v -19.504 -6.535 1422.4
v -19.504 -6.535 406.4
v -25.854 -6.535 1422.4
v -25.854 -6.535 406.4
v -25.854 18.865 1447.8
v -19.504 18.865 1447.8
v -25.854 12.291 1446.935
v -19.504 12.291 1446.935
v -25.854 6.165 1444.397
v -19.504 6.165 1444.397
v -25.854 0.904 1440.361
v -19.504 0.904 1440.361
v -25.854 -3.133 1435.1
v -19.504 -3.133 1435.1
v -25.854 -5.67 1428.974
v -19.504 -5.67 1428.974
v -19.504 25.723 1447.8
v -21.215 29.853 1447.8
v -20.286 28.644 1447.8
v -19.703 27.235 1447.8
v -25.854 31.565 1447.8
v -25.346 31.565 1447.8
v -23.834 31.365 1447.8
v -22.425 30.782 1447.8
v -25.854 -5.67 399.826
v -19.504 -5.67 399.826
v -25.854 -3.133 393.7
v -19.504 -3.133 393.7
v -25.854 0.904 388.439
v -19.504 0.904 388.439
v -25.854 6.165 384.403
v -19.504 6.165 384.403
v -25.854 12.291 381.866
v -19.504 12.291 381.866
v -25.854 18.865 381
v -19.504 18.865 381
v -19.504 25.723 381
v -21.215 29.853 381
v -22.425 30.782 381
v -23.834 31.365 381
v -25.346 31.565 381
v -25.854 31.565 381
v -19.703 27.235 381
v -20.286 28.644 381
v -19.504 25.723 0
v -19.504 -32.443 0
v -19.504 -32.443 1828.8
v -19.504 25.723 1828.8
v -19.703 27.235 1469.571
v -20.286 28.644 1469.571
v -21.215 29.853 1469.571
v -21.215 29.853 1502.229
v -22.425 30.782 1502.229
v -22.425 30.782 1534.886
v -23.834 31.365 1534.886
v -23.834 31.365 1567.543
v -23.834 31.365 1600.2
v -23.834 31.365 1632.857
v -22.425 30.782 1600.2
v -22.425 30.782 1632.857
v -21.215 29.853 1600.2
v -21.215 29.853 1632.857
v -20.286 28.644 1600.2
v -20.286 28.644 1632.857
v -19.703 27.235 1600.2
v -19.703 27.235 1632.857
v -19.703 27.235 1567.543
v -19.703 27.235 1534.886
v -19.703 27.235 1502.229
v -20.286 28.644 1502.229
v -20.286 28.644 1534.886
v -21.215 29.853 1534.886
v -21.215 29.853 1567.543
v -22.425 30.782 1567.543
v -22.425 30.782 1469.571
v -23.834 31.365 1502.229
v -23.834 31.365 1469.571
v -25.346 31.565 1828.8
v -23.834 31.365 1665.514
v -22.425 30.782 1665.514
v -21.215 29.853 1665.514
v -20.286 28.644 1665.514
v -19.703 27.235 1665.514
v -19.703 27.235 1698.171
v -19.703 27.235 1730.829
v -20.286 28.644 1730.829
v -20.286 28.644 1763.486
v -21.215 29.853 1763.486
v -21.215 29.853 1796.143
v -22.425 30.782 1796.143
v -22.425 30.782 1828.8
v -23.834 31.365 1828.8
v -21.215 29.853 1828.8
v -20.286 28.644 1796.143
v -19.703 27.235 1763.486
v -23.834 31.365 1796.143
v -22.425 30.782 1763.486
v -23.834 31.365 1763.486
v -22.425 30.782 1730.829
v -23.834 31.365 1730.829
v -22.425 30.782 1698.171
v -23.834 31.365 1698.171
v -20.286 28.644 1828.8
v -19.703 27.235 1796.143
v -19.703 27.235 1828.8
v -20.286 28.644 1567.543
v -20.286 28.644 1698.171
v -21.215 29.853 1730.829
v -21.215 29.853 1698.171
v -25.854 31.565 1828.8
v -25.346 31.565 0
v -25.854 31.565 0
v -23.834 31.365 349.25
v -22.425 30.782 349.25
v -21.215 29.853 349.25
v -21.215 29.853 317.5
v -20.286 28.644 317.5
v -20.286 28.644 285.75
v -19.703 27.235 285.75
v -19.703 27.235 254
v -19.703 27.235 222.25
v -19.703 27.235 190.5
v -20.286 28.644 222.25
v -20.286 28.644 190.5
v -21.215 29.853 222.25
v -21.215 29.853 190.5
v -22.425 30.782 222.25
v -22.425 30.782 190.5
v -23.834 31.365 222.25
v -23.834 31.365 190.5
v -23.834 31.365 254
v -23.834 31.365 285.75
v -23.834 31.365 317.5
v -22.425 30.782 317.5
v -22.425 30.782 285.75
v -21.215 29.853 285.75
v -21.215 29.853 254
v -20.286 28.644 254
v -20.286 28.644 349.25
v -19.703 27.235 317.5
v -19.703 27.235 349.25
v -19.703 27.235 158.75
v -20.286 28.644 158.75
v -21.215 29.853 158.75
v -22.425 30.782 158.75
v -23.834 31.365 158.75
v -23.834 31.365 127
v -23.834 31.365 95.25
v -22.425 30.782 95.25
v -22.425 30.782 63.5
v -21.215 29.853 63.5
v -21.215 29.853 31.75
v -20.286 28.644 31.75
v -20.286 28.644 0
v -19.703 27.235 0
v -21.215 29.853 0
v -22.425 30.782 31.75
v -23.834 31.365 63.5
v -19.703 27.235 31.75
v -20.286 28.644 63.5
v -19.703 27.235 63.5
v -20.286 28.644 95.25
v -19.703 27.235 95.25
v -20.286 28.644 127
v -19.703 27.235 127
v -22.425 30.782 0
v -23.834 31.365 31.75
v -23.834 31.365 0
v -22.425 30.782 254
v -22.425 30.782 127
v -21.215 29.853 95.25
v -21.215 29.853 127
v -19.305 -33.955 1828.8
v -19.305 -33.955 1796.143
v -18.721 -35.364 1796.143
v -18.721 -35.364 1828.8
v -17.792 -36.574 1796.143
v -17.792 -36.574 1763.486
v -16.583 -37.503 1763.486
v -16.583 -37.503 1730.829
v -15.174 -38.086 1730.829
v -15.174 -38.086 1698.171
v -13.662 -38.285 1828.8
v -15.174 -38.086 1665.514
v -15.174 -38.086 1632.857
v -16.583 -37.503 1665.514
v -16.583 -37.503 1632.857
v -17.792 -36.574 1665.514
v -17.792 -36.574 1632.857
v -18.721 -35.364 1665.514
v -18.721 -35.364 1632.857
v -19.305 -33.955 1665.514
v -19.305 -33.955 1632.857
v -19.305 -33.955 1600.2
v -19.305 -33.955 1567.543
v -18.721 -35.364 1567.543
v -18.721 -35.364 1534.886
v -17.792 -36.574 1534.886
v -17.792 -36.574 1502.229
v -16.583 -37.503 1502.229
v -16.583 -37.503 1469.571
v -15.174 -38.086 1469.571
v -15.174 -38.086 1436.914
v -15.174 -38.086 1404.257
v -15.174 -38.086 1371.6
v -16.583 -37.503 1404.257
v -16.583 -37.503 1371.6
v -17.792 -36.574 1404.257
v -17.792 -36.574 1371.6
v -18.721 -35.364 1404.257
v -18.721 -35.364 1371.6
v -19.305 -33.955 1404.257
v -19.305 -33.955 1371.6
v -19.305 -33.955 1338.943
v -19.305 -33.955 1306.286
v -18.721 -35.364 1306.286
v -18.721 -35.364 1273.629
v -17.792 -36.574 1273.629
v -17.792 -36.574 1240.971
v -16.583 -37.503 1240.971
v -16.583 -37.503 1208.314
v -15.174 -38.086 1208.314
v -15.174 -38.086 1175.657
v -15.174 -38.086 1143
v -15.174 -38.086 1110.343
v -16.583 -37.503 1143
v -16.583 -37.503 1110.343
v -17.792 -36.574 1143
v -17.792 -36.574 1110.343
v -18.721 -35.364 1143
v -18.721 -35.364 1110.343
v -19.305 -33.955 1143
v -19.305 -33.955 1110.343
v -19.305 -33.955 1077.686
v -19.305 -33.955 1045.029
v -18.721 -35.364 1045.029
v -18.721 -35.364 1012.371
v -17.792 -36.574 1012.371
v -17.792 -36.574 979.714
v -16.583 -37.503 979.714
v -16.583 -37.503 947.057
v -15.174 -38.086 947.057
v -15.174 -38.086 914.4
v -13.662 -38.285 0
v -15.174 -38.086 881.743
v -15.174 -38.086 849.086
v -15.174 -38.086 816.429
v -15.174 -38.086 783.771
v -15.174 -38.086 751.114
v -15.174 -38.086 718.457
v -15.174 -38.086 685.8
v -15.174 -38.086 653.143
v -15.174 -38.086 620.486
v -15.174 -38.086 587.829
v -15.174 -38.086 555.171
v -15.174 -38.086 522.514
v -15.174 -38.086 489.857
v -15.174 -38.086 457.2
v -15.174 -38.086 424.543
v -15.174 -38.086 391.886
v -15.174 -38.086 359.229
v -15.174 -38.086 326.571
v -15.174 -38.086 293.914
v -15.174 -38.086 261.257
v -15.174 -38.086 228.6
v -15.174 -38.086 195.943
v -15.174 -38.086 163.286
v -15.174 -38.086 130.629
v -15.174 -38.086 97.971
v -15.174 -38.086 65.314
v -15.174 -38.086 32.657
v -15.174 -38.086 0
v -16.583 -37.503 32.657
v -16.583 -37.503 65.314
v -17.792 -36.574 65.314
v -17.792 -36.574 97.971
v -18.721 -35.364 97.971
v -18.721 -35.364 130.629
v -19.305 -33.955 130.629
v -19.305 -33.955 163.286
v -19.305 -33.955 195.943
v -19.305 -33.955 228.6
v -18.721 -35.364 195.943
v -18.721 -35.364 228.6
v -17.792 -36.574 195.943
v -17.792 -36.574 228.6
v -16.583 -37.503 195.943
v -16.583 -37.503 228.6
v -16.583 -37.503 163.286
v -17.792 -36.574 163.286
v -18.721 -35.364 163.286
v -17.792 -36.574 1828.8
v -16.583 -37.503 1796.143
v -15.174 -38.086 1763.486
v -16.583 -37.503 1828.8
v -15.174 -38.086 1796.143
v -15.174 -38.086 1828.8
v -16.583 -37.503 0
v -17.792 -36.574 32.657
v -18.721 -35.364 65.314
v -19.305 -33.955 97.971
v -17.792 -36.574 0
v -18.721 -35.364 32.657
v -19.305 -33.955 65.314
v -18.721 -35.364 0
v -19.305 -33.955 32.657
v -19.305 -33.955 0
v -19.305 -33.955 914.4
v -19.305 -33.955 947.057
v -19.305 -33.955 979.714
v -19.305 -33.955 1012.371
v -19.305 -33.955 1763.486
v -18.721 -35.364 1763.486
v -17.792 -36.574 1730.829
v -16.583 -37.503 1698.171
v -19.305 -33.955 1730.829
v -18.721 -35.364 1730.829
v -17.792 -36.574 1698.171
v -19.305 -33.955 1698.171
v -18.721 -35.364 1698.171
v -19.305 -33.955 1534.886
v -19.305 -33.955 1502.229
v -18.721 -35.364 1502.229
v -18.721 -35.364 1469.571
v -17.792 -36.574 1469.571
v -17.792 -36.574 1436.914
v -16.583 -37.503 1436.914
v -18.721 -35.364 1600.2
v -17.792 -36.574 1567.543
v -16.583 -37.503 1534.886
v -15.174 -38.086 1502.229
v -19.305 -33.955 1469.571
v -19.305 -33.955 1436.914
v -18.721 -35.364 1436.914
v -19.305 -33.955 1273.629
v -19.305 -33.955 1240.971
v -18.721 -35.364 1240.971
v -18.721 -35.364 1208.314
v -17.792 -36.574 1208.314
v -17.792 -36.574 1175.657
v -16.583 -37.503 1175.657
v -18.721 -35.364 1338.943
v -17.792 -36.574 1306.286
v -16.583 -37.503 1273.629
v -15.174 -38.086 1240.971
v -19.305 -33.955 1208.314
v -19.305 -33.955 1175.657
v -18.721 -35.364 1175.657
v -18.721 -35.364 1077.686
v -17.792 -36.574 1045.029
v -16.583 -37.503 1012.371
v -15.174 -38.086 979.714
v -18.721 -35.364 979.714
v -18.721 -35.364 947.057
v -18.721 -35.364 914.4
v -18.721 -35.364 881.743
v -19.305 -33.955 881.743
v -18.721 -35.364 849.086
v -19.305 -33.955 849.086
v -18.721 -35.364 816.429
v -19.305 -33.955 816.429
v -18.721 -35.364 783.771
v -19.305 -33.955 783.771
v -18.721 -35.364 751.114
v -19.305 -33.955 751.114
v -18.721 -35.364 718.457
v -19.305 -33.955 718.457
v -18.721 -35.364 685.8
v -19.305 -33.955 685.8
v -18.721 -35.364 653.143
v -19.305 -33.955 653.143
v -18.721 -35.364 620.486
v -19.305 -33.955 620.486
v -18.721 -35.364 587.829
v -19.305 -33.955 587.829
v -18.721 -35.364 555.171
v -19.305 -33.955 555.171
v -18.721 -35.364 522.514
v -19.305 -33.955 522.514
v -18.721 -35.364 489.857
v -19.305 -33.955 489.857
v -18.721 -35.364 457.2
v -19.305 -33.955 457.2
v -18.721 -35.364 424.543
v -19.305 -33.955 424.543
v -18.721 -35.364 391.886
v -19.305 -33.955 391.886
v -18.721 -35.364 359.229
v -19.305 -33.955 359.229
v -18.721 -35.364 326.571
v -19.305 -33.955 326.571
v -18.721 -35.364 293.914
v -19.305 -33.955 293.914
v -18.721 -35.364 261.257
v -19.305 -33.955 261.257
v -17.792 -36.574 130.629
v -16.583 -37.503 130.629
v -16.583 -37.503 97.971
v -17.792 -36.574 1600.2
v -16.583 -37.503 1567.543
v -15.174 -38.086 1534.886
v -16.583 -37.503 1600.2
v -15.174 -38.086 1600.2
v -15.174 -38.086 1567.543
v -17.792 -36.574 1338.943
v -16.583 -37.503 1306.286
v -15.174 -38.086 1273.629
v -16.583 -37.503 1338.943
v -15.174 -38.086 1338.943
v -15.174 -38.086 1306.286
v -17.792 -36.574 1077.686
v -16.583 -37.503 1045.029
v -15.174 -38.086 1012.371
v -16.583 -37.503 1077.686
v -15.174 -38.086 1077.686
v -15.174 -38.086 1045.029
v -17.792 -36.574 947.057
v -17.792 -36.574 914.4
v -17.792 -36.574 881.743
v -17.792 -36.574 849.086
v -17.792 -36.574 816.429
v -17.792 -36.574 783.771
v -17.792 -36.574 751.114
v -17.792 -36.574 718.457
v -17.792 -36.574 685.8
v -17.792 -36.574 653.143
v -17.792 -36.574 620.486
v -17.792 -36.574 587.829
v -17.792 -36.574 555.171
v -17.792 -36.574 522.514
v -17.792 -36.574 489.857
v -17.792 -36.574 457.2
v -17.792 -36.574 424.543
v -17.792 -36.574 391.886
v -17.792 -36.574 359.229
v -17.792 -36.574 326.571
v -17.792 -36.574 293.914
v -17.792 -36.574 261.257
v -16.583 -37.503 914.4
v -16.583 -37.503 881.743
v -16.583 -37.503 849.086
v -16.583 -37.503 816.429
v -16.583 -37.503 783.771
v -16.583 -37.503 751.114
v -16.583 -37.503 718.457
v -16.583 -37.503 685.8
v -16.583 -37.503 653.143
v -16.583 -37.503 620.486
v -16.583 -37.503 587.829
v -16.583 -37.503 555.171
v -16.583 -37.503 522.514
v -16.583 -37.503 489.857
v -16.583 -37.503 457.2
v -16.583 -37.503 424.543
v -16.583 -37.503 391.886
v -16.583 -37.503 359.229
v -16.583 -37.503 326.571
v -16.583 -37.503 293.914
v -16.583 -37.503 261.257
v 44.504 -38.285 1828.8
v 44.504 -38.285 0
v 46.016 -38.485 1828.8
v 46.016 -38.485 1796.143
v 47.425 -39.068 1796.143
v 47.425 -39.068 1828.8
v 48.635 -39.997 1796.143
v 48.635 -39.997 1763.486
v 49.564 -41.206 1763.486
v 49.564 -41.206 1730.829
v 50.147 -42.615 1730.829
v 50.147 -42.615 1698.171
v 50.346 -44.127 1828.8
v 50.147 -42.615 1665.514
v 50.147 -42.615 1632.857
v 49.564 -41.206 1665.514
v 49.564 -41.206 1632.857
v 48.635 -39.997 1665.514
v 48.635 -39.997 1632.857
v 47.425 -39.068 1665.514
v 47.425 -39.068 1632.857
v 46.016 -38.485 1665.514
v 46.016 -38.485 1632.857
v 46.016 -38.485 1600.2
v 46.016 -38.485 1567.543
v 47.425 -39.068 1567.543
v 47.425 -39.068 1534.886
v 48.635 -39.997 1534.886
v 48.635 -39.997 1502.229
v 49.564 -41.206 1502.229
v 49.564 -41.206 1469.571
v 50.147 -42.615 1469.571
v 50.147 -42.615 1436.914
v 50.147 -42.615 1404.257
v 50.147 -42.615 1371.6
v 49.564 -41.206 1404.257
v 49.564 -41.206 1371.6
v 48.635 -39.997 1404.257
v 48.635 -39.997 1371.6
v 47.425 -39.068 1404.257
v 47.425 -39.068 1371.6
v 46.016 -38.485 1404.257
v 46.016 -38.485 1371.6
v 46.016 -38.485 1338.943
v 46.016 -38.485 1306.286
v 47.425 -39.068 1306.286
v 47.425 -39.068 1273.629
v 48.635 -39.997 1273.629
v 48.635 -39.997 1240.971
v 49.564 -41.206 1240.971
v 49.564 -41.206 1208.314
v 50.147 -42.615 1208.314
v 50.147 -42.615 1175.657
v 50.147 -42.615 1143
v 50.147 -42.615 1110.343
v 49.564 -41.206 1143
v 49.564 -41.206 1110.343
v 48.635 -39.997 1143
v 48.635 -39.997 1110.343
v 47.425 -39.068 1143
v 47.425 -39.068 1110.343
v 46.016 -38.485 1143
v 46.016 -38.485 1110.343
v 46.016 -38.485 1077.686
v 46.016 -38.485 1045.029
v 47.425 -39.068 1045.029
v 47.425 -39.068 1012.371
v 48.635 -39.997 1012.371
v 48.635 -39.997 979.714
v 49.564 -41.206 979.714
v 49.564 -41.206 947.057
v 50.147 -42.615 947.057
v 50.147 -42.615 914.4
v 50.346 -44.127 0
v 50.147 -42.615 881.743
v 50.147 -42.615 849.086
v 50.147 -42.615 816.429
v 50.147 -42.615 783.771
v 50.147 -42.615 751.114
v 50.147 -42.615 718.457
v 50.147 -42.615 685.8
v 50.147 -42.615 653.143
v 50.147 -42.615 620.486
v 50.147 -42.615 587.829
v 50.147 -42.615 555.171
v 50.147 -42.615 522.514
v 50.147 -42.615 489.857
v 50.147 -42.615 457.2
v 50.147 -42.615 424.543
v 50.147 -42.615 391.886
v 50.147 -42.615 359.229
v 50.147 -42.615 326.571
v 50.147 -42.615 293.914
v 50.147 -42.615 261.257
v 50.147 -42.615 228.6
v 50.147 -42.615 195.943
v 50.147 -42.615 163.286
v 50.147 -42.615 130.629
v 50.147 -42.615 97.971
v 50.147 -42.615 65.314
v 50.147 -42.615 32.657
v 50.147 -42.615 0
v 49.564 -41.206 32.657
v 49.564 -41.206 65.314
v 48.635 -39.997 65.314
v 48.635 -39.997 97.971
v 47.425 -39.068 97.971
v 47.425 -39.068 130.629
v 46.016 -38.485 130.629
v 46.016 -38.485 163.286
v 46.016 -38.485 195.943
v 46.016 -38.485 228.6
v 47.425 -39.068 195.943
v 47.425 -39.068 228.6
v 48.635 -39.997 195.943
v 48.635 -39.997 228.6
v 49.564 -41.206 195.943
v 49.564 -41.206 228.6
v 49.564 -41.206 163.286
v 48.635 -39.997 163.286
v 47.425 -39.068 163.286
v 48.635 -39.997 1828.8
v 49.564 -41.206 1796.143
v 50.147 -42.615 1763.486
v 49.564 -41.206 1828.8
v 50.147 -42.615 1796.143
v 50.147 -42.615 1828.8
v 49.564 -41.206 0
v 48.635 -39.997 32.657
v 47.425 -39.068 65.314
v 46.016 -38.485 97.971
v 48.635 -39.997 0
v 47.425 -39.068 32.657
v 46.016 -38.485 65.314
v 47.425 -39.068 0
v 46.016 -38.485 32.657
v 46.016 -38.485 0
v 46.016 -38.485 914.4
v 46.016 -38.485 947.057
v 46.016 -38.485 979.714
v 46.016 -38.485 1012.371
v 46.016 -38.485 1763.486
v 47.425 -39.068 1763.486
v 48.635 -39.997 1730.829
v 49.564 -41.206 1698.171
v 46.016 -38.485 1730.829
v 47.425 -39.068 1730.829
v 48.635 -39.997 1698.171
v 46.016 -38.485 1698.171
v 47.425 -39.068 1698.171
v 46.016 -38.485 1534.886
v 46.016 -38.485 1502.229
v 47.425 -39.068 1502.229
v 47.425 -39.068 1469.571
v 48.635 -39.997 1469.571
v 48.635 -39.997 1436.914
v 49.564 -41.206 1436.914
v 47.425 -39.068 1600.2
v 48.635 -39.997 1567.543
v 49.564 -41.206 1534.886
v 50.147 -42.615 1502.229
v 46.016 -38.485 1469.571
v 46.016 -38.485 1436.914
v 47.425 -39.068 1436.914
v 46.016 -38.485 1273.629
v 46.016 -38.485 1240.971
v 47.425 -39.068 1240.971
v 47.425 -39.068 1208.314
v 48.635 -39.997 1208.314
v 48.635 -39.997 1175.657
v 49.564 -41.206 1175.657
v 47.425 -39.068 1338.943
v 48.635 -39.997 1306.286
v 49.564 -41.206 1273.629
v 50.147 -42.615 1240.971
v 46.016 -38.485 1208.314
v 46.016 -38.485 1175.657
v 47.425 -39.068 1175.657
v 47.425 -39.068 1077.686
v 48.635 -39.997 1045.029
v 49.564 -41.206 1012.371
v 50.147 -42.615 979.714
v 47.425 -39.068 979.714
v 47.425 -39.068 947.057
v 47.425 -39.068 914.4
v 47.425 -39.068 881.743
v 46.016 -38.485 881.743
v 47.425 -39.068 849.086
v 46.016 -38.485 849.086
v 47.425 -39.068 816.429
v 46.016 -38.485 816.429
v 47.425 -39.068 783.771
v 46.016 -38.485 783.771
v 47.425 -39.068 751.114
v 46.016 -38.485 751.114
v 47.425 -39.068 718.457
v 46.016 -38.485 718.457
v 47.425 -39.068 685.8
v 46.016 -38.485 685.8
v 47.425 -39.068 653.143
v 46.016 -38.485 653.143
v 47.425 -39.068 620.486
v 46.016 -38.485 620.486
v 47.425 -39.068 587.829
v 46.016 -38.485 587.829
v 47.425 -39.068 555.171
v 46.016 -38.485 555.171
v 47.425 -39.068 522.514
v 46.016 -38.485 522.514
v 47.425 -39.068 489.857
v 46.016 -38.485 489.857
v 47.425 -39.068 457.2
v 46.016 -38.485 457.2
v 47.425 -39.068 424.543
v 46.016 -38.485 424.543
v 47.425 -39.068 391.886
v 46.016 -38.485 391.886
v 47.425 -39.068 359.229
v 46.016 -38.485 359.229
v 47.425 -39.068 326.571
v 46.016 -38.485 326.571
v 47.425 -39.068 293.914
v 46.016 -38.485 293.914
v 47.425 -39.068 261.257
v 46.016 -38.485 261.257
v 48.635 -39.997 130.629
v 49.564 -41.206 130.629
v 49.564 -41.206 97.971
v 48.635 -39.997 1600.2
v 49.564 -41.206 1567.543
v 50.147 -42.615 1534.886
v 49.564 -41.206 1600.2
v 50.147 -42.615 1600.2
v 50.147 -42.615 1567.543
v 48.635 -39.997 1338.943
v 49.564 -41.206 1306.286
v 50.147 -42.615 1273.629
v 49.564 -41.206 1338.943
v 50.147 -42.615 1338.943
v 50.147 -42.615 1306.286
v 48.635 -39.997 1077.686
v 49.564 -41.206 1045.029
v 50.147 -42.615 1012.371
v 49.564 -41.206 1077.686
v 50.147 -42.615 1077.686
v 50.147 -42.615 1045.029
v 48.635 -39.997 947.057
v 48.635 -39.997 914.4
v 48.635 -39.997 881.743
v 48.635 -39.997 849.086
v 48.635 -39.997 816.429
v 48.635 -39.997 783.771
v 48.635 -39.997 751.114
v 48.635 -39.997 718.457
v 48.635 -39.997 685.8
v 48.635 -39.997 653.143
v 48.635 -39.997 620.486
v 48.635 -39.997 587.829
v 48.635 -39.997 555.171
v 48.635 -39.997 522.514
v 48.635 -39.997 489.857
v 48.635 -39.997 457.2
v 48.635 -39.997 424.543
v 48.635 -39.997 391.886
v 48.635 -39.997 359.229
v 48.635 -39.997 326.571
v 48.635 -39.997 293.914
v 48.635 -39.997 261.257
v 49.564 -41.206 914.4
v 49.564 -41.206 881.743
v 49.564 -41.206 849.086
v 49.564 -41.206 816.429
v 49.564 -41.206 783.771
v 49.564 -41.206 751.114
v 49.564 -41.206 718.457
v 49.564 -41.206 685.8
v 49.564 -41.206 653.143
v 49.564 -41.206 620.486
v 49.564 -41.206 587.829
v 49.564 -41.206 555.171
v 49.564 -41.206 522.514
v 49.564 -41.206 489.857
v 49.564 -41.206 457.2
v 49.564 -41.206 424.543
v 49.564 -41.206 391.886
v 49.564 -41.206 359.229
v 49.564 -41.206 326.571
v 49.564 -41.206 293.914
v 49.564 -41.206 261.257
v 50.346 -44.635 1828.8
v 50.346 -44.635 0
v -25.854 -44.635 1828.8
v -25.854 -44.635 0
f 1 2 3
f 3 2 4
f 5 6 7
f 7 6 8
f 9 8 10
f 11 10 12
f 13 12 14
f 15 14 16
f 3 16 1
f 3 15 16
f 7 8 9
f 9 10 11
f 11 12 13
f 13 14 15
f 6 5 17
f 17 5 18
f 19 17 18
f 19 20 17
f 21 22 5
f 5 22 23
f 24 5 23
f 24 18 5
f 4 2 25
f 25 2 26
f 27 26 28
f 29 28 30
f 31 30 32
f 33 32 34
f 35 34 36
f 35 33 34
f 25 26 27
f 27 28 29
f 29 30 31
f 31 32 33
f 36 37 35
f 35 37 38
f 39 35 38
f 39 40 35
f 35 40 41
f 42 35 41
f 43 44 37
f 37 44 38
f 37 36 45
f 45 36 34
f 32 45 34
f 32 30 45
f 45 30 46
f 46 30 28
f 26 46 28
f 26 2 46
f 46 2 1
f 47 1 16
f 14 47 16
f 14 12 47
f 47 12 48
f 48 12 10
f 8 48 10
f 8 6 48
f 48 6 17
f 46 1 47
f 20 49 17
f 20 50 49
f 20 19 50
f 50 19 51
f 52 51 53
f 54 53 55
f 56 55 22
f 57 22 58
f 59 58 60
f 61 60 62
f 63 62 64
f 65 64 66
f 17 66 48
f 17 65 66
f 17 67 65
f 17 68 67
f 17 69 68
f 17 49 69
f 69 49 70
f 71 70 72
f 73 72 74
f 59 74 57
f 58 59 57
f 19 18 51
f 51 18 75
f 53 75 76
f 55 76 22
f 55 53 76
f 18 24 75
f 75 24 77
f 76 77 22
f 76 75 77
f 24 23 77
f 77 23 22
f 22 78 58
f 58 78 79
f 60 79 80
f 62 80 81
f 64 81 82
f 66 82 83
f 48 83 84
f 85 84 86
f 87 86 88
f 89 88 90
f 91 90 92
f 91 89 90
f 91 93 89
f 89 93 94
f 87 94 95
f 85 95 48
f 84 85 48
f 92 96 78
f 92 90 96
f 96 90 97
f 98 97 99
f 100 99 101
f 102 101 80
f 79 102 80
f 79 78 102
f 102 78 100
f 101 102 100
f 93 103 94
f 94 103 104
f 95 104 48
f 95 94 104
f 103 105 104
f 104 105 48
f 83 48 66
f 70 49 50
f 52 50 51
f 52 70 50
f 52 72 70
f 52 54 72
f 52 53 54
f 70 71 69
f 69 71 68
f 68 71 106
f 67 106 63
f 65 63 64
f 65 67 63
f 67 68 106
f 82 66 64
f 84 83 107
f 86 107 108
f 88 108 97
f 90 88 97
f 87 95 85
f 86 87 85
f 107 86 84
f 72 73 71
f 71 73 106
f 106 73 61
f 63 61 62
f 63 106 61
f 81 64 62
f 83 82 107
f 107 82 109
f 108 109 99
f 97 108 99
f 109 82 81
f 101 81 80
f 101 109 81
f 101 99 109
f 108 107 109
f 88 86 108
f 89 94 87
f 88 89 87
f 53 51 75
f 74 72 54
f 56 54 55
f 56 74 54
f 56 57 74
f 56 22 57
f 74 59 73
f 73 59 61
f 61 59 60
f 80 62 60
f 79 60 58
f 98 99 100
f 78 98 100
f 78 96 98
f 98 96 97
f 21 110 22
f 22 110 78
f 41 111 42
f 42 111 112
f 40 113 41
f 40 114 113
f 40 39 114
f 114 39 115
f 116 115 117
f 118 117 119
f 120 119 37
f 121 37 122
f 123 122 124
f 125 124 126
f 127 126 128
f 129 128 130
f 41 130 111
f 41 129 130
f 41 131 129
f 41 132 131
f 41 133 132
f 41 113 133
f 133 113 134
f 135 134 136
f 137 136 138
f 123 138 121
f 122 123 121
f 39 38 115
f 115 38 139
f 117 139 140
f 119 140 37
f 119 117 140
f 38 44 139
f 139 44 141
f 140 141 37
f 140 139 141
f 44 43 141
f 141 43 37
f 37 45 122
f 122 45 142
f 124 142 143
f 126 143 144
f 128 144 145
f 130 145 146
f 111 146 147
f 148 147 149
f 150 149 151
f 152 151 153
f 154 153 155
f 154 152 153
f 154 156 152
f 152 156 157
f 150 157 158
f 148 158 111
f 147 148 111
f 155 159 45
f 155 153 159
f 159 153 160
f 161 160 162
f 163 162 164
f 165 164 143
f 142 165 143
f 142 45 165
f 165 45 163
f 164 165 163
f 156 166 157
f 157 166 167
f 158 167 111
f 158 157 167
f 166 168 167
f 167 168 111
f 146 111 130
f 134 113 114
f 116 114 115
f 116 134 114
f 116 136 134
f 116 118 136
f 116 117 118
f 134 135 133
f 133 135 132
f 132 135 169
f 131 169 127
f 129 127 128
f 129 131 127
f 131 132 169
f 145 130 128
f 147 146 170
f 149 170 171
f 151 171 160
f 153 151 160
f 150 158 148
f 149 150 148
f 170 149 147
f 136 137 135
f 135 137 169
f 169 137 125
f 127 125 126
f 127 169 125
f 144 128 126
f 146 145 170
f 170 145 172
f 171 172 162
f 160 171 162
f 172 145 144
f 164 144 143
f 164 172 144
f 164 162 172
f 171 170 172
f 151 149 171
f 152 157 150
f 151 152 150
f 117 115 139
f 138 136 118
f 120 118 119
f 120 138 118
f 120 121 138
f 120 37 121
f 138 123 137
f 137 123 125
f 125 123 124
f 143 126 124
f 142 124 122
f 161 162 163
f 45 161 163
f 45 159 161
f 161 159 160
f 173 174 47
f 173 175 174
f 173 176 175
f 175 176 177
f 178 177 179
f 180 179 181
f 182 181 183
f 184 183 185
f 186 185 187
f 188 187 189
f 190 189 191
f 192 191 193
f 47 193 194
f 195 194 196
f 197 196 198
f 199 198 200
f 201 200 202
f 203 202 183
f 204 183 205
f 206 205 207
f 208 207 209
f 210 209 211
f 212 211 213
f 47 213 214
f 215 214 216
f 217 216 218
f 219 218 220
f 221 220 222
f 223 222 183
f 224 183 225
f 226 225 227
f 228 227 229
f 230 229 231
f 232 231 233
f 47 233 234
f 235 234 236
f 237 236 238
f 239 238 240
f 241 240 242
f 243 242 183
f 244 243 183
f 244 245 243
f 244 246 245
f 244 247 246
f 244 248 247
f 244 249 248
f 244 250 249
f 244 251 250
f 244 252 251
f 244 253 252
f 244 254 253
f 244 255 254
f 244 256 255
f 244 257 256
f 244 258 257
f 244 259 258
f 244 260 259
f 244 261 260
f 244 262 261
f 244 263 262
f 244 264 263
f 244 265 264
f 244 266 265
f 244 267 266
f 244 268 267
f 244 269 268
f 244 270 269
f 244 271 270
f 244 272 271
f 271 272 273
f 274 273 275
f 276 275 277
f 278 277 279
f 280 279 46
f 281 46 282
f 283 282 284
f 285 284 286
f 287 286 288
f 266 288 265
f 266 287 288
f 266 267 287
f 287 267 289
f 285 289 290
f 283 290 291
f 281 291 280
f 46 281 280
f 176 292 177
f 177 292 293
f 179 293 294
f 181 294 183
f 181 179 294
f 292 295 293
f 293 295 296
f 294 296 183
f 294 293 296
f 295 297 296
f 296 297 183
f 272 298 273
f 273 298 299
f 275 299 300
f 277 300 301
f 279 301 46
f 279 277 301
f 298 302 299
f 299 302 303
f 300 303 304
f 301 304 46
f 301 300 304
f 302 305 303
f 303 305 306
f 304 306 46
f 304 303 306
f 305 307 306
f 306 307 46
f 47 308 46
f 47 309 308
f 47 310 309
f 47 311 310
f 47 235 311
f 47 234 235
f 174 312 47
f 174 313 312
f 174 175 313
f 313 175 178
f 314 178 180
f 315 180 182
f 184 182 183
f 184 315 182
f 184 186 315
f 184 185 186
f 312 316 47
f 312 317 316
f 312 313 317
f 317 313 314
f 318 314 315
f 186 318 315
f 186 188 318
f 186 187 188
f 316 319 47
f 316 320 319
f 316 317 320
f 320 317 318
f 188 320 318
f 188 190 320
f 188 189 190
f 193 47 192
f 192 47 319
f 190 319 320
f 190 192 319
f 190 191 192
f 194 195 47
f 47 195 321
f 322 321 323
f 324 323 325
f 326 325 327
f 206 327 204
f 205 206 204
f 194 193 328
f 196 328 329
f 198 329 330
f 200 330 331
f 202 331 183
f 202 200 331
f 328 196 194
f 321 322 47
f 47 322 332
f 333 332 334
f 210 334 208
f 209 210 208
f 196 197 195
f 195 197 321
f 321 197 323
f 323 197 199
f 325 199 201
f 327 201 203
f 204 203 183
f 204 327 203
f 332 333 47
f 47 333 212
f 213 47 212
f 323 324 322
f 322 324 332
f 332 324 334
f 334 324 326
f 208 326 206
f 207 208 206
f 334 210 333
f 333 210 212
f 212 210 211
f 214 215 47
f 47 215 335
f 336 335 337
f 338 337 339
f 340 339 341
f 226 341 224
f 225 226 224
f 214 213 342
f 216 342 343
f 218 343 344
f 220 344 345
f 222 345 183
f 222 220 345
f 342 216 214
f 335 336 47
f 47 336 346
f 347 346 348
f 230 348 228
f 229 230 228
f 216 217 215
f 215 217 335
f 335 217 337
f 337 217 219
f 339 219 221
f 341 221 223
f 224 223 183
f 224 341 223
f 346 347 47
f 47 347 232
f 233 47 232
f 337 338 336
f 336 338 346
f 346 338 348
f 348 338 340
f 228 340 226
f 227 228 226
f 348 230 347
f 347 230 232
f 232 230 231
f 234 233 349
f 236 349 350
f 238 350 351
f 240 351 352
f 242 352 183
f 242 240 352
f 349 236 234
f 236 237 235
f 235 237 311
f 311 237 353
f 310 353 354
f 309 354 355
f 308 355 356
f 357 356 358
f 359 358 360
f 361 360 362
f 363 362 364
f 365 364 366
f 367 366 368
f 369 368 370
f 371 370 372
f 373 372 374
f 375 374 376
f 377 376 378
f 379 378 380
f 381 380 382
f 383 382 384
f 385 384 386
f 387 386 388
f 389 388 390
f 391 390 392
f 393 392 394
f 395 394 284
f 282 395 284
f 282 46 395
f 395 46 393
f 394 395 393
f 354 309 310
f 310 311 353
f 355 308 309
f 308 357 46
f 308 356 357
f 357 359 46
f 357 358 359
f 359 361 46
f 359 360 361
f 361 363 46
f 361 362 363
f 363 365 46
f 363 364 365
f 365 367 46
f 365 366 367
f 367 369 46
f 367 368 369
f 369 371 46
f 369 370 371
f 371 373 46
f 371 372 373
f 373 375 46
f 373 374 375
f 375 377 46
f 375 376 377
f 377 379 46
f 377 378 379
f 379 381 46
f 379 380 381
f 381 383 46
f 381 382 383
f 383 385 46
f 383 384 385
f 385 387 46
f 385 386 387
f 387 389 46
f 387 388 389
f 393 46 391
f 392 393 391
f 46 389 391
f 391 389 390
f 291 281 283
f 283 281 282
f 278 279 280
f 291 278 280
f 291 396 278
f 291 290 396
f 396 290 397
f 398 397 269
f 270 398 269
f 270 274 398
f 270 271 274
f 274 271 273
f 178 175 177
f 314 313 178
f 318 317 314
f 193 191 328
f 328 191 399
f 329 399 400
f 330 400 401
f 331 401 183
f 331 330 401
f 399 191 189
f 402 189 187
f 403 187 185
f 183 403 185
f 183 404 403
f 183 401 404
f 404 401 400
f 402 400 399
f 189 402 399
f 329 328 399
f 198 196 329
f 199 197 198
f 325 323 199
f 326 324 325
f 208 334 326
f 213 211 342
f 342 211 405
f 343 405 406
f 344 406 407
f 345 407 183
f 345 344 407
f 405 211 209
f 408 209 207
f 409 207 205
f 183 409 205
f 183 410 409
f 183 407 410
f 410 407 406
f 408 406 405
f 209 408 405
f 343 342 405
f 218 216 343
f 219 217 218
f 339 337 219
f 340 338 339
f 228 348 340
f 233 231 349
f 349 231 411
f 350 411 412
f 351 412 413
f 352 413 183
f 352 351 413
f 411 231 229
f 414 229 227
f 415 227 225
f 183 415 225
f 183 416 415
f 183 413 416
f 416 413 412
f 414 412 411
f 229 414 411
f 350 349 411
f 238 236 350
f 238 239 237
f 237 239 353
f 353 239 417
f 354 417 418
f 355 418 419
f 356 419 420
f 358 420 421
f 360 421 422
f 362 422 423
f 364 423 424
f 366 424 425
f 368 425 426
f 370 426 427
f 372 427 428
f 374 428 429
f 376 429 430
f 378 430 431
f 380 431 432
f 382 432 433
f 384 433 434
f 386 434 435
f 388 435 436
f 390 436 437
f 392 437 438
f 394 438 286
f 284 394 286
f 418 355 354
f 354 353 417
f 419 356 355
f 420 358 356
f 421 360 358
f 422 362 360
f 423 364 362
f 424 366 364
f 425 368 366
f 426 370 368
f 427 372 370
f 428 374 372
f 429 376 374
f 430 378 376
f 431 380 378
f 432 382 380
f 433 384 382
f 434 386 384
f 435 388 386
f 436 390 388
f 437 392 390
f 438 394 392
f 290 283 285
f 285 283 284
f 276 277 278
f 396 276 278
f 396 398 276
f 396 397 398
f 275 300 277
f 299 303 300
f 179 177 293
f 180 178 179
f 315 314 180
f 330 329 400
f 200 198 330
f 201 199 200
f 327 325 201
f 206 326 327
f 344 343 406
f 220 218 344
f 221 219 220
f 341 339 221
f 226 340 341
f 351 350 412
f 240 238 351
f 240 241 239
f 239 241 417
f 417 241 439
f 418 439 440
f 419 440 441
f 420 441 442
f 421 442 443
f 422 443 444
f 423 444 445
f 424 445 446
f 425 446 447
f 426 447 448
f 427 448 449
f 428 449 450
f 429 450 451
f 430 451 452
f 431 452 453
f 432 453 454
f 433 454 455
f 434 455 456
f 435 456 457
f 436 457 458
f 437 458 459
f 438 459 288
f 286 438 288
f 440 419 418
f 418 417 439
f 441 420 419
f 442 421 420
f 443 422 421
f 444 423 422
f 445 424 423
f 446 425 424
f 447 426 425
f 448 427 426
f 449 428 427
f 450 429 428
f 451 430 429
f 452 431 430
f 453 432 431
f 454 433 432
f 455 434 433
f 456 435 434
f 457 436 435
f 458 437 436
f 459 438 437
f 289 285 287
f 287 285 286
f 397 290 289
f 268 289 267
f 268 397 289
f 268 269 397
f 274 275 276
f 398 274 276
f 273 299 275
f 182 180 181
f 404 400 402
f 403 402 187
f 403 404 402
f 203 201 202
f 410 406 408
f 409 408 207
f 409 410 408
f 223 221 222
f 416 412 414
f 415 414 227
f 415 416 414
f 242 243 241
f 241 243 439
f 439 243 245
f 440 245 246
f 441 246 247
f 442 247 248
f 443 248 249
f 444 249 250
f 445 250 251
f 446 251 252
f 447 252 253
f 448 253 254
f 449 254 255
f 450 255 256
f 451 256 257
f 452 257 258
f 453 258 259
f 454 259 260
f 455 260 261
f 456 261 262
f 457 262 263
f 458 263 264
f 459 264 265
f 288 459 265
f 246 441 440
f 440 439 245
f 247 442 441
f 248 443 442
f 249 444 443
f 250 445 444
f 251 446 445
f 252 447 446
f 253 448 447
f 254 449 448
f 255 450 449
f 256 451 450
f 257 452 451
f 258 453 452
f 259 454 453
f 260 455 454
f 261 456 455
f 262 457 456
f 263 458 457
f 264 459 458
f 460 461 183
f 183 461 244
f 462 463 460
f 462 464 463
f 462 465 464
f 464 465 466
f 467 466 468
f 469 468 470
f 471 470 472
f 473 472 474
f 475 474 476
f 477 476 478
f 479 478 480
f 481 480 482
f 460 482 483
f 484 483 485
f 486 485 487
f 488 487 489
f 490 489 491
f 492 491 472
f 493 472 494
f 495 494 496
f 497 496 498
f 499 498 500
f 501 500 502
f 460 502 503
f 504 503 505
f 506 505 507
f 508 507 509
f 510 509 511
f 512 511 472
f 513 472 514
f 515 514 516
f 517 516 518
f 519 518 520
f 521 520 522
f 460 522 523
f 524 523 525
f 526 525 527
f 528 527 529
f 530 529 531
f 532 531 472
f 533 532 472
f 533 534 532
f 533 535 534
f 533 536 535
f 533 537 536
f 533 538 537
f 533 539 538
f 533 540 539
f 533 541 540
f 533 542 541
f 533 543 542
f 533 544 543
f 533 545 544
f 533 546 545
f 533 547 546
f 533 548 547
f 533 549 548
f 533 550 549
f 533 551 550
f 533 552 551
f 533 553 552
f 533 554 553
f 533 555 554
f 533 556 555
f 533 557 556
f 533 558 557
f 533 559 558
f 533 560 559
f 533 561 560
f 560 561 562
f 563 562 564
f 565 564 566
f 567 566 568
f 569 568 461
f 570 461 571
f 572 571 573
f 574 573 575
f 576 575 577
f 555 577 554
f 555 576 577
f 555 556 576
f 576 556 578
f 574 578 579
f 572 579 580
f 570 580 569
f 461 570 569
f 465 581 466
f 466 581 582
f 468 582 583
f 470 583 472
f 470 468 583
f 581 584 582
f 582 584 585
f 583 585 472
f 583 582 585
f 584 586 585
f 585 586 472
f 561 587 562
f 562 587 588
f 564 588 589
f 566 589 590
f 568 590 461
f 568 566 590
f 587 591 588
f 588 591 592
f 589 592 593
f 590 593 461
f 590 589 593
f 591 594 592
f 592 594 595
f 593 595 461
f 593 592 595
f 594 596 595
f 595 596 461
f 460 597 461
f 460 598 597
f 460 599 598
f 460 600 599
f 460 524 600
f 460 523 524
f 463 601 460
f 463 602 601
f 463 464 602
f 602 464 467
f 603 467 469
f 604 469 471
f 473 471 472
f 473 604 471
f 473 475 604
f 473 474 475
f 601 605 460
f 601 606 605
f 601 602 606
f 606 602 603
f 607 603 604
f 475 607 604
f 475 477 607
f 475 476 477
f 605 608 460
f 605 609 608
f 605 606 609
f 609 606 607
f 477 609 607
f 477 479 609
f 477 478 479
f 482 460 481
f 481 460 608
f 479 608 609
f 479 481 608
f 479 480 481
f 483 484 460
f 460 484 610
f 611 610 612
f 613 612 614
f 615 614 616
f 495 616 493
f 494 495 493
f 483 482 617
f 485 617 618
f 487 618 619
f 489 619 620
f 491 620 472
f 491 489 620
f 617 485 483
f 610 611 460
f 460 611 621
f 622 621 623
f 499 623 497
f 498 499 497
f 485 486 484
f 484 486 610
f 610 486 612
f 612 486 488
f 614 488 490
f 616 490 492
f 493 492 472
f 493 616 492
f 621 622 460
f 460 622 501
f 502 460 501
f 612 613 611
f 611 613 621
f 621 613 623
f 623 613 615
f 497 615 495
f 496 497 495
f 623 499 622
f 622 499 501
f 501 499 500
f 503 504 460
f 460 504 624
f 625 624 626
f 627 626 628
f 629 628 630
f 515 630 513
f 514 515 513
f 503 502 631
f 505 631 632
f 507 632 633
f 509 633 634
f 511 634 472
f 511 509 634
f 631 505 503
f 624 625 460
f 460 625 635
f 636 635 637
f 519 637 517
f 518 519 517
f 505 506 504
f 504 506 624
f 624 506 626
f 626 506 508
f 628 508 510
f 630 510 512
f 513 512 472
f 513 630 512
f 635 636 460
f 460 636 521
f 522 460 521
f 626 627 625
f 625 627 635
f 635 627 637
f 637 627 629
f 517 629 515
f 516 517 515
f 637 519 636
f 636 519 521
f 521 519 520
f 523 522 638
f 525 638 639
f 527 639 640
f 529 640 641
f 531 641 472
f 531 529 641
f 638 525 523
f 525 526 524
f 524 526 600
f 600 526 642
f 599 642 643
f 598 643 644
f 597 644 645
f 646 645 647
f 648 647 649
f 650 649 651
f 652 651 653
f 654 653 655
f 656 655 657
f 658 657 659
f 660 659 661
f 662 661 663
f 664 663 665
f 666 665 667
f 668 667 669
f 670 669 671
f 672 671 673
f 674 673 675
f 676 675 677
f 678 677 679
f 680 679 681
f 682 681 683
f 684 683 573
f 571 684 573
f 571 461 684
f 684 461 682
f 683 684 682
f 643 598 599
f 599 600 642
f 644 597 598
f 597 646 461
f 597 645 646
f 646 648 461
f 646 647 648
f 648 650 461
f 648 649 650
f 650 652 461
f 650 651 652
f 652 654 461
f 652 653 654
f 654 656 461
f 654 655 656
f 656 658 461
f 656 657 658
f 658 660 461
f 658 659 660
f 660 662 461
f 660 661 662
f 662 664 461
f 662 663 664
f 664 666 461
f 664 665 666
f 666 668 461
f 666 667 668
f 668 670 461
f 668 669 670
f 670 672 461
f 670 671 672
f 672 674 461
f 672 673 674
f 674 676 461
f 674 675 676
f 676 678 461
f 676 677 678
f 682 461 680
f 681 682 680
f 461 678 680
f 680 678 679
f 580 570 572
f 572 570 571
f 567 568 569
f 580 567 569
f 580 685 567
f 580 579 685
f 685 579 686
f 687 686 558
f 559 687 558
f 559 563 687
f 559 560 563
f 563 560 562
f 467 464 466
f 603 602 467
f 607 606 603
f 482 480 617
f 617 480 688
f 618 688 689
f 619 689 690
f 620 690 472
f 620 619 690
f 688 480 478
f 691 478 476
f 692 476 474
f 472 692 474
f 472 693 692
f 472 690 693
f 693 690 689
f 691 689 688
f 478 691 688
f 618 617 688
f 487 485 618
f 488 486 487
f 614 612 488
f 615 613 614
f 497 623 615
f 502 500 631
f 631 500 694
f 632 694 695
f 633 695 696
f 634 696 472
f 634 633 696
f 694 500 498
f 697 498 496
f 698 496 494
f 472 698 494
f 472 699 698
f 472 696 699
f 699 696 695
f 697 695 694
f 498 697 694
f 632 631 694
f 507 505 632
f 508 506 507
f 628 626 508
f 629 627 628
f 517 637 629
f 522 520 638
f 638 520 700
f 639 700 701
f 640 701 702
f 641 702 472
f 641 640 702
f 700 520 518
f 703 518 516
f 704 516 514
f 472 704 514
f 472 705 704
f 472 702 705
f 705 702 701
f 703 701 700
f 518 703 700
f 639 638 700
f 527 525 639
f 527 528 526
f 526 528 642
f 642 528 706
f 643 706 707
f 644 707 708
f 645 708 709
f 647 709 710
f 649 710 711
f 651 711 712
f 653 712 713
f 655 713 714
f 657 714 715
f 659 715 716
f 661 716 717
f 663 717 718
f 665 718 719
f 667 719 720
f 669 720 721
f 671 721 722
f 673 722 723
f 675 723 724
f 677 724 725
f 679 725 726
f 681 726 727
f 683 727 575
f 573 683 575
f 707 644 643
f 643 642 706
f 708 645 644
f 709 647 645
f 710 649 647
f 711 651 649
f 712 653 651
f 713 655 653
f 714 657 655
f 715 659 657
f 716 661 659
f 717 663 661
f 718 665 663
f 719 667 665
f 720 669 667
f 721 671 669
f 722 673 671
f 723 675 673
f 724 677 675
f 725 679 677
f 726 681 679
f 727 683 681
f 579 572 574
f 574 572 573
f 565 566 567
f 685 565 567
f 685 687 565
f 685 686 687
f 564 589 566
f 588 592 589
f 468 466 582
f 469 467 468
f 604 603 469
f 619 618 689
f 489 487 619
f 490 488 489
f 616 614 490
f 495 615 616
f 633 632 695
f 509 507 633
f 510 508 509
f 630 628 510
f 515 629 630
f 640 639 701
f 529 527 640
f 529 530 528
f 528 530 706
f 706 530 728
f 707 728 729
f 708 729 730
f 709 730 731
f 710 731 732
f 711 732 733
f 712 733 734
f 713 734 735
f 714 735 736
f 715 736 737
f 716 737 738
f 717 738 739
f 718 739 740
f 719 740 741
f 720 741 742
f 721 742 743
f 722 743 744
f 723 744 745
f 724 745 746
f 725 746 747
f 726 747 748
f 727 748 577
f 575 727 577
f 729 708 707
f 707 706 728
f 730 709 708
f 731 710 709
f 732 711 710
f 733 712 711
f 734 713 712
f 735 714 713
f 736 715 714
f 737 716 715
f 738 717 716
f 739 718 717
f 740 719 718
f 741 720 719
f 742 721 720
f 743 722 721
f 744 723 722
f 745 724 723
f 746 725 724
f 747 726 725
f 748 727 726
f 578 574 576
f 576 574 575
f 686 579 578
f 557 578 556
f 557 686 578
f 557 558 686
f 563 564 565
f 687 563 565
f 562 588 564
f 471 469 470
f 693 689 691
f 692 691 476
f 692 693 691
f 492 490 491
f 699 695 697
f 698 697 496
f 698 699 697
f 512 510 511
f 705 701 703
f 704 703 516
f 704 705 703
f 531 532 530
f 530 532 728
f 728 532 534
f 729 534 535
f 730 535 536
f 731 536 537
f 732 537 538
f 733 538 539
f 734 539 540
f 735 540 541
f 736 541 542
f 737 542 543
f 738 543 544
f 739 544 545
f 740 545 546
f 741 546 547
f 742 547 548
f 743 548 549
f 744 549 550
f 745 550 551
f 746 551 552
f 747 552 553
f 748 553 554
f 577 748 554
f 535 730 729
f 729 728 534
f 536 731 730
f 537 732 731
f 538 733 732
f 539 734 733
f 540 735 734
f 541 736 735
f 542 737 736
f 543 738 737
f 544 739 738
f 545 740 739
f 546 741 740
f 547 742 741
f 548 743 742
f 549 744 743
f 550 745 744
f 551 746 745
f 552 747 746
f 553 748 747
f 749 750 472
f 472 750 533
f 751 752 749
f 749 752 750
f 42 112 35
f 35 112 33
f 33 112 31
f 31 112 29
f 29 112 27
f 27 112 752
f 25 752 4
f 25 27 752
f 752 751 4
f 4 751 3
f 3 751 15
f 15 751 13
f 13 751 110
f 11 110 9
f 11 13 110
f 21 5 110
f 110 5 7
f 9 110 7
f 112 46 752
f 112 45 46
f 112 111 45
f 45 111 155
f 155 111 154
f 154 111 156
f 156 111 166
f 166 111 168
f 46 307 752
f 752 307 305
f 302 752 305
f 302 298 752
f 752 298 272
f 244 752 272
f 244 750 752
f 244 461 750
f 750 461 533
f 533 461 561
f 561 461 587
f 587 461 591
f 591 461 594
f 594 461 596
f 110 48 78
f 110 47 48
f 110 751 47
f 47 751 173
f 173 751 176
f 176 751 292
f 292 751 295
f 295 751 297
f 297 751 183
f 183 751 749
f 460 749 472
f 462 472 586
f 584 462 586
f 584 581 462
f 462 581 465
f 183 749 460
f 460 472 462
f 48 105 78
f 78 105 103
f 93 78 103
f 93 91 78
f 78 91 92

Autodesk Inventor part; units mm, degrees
ref_plane "YZ Plane" through (0, 0, 0) normal (1, 0, 0) x (0, 1, 0)
ref_plane "XZ Plane" through (0, 0, 0) normal (0, 1, 0) x (-1, 0, 0)
ref_plane "XY Plane" through (0, 0, 0) normal (0, 0, 1) x (1, 0, 0)
sketch "Sketch1" plane through (0, 0, 0) normal (0, 0, 1) x (1, 0, 0)
  line L0 (-25.8536, 31.5645) -> (-25.8536, -44.6355)
  line L1 (-25.8536, -44.6355) -> (50.3464, -44.6355)
  line L2 (50.3464, -44.6355) -> (50.3464, -44.1275)
  line L3 (44.5044, -38.2855) -> (-13.6616, -38.2855)
  line L4 (-19.5036, -32.4435) -> (-19.5036, 25.7225)
  line L5 (-25.3456, 31.5645) -> (-25.8536, 31.5645)
  arc A0 (50.3464, -44.1275) -> (44.5044, -38.2855) centre (44.5044, -44.1275) ccw
  arc A1 (-19.5036, 25.7225) -> (-25.3456, 31.5645) centre (-25.3456, 25.7225) ccw
  arc A2 (-19.5036, -32.4435) -> (-13.6616, -38.2855) centre (-13.6616, -32.4435) ccw
  point P0 (-19.5036, 31.5645)
  dimension "d0" = 76.2
  dimension "d1" = 76.2
  dimension "d2" = 6.35
  dimension "d3" = 5.842
extrude "Extrusion1" add sketch "Sketch1" along normal blind 1828.8
sketch "Sketch2" plane through (-25.8536, -44.6355, 0) normal (-1, 0, 0) x (0, 0, 1)
  line L0 (1828.8, 0) -> (1828.8, 76.2) projected
  line L1 (0, 76.2) -> (1828.8, 76.2) projected
  line L2 (0, 76.2) -> (0, 0) projected
  line L3 (0, 0) -> (1828.8, 0) projected
  line L4 (381, 76.2) -> (381, 63.5)
  line L5 (406.4, 38.1) -> (1422.4, 38.1)
  line L6 (1447.8, 63.5) -> (1447.8, 76.2)
  line L7 (1447.8, 76.2) -> (381, 76.2)
  arc A0 (381, 63.5) -> (406.4, 38.1) centre (406.4, 63.5) ccw
  arc A1 (1422.4, 38.1) -> (1447.8, 63.5) centre (1422.4, 63.5) ccw
  dimension "d6" = 25.4
  dimension "d7" = 38.1
  dimension "d8" = 381
  dimension "d9" = 381
extrude "Extrusion2" cut sketch "Sketch2" against normal mid plane 1828.8 contours L6 A1 L5 A0 L4 L1
properties part number "FE-00006-01"
